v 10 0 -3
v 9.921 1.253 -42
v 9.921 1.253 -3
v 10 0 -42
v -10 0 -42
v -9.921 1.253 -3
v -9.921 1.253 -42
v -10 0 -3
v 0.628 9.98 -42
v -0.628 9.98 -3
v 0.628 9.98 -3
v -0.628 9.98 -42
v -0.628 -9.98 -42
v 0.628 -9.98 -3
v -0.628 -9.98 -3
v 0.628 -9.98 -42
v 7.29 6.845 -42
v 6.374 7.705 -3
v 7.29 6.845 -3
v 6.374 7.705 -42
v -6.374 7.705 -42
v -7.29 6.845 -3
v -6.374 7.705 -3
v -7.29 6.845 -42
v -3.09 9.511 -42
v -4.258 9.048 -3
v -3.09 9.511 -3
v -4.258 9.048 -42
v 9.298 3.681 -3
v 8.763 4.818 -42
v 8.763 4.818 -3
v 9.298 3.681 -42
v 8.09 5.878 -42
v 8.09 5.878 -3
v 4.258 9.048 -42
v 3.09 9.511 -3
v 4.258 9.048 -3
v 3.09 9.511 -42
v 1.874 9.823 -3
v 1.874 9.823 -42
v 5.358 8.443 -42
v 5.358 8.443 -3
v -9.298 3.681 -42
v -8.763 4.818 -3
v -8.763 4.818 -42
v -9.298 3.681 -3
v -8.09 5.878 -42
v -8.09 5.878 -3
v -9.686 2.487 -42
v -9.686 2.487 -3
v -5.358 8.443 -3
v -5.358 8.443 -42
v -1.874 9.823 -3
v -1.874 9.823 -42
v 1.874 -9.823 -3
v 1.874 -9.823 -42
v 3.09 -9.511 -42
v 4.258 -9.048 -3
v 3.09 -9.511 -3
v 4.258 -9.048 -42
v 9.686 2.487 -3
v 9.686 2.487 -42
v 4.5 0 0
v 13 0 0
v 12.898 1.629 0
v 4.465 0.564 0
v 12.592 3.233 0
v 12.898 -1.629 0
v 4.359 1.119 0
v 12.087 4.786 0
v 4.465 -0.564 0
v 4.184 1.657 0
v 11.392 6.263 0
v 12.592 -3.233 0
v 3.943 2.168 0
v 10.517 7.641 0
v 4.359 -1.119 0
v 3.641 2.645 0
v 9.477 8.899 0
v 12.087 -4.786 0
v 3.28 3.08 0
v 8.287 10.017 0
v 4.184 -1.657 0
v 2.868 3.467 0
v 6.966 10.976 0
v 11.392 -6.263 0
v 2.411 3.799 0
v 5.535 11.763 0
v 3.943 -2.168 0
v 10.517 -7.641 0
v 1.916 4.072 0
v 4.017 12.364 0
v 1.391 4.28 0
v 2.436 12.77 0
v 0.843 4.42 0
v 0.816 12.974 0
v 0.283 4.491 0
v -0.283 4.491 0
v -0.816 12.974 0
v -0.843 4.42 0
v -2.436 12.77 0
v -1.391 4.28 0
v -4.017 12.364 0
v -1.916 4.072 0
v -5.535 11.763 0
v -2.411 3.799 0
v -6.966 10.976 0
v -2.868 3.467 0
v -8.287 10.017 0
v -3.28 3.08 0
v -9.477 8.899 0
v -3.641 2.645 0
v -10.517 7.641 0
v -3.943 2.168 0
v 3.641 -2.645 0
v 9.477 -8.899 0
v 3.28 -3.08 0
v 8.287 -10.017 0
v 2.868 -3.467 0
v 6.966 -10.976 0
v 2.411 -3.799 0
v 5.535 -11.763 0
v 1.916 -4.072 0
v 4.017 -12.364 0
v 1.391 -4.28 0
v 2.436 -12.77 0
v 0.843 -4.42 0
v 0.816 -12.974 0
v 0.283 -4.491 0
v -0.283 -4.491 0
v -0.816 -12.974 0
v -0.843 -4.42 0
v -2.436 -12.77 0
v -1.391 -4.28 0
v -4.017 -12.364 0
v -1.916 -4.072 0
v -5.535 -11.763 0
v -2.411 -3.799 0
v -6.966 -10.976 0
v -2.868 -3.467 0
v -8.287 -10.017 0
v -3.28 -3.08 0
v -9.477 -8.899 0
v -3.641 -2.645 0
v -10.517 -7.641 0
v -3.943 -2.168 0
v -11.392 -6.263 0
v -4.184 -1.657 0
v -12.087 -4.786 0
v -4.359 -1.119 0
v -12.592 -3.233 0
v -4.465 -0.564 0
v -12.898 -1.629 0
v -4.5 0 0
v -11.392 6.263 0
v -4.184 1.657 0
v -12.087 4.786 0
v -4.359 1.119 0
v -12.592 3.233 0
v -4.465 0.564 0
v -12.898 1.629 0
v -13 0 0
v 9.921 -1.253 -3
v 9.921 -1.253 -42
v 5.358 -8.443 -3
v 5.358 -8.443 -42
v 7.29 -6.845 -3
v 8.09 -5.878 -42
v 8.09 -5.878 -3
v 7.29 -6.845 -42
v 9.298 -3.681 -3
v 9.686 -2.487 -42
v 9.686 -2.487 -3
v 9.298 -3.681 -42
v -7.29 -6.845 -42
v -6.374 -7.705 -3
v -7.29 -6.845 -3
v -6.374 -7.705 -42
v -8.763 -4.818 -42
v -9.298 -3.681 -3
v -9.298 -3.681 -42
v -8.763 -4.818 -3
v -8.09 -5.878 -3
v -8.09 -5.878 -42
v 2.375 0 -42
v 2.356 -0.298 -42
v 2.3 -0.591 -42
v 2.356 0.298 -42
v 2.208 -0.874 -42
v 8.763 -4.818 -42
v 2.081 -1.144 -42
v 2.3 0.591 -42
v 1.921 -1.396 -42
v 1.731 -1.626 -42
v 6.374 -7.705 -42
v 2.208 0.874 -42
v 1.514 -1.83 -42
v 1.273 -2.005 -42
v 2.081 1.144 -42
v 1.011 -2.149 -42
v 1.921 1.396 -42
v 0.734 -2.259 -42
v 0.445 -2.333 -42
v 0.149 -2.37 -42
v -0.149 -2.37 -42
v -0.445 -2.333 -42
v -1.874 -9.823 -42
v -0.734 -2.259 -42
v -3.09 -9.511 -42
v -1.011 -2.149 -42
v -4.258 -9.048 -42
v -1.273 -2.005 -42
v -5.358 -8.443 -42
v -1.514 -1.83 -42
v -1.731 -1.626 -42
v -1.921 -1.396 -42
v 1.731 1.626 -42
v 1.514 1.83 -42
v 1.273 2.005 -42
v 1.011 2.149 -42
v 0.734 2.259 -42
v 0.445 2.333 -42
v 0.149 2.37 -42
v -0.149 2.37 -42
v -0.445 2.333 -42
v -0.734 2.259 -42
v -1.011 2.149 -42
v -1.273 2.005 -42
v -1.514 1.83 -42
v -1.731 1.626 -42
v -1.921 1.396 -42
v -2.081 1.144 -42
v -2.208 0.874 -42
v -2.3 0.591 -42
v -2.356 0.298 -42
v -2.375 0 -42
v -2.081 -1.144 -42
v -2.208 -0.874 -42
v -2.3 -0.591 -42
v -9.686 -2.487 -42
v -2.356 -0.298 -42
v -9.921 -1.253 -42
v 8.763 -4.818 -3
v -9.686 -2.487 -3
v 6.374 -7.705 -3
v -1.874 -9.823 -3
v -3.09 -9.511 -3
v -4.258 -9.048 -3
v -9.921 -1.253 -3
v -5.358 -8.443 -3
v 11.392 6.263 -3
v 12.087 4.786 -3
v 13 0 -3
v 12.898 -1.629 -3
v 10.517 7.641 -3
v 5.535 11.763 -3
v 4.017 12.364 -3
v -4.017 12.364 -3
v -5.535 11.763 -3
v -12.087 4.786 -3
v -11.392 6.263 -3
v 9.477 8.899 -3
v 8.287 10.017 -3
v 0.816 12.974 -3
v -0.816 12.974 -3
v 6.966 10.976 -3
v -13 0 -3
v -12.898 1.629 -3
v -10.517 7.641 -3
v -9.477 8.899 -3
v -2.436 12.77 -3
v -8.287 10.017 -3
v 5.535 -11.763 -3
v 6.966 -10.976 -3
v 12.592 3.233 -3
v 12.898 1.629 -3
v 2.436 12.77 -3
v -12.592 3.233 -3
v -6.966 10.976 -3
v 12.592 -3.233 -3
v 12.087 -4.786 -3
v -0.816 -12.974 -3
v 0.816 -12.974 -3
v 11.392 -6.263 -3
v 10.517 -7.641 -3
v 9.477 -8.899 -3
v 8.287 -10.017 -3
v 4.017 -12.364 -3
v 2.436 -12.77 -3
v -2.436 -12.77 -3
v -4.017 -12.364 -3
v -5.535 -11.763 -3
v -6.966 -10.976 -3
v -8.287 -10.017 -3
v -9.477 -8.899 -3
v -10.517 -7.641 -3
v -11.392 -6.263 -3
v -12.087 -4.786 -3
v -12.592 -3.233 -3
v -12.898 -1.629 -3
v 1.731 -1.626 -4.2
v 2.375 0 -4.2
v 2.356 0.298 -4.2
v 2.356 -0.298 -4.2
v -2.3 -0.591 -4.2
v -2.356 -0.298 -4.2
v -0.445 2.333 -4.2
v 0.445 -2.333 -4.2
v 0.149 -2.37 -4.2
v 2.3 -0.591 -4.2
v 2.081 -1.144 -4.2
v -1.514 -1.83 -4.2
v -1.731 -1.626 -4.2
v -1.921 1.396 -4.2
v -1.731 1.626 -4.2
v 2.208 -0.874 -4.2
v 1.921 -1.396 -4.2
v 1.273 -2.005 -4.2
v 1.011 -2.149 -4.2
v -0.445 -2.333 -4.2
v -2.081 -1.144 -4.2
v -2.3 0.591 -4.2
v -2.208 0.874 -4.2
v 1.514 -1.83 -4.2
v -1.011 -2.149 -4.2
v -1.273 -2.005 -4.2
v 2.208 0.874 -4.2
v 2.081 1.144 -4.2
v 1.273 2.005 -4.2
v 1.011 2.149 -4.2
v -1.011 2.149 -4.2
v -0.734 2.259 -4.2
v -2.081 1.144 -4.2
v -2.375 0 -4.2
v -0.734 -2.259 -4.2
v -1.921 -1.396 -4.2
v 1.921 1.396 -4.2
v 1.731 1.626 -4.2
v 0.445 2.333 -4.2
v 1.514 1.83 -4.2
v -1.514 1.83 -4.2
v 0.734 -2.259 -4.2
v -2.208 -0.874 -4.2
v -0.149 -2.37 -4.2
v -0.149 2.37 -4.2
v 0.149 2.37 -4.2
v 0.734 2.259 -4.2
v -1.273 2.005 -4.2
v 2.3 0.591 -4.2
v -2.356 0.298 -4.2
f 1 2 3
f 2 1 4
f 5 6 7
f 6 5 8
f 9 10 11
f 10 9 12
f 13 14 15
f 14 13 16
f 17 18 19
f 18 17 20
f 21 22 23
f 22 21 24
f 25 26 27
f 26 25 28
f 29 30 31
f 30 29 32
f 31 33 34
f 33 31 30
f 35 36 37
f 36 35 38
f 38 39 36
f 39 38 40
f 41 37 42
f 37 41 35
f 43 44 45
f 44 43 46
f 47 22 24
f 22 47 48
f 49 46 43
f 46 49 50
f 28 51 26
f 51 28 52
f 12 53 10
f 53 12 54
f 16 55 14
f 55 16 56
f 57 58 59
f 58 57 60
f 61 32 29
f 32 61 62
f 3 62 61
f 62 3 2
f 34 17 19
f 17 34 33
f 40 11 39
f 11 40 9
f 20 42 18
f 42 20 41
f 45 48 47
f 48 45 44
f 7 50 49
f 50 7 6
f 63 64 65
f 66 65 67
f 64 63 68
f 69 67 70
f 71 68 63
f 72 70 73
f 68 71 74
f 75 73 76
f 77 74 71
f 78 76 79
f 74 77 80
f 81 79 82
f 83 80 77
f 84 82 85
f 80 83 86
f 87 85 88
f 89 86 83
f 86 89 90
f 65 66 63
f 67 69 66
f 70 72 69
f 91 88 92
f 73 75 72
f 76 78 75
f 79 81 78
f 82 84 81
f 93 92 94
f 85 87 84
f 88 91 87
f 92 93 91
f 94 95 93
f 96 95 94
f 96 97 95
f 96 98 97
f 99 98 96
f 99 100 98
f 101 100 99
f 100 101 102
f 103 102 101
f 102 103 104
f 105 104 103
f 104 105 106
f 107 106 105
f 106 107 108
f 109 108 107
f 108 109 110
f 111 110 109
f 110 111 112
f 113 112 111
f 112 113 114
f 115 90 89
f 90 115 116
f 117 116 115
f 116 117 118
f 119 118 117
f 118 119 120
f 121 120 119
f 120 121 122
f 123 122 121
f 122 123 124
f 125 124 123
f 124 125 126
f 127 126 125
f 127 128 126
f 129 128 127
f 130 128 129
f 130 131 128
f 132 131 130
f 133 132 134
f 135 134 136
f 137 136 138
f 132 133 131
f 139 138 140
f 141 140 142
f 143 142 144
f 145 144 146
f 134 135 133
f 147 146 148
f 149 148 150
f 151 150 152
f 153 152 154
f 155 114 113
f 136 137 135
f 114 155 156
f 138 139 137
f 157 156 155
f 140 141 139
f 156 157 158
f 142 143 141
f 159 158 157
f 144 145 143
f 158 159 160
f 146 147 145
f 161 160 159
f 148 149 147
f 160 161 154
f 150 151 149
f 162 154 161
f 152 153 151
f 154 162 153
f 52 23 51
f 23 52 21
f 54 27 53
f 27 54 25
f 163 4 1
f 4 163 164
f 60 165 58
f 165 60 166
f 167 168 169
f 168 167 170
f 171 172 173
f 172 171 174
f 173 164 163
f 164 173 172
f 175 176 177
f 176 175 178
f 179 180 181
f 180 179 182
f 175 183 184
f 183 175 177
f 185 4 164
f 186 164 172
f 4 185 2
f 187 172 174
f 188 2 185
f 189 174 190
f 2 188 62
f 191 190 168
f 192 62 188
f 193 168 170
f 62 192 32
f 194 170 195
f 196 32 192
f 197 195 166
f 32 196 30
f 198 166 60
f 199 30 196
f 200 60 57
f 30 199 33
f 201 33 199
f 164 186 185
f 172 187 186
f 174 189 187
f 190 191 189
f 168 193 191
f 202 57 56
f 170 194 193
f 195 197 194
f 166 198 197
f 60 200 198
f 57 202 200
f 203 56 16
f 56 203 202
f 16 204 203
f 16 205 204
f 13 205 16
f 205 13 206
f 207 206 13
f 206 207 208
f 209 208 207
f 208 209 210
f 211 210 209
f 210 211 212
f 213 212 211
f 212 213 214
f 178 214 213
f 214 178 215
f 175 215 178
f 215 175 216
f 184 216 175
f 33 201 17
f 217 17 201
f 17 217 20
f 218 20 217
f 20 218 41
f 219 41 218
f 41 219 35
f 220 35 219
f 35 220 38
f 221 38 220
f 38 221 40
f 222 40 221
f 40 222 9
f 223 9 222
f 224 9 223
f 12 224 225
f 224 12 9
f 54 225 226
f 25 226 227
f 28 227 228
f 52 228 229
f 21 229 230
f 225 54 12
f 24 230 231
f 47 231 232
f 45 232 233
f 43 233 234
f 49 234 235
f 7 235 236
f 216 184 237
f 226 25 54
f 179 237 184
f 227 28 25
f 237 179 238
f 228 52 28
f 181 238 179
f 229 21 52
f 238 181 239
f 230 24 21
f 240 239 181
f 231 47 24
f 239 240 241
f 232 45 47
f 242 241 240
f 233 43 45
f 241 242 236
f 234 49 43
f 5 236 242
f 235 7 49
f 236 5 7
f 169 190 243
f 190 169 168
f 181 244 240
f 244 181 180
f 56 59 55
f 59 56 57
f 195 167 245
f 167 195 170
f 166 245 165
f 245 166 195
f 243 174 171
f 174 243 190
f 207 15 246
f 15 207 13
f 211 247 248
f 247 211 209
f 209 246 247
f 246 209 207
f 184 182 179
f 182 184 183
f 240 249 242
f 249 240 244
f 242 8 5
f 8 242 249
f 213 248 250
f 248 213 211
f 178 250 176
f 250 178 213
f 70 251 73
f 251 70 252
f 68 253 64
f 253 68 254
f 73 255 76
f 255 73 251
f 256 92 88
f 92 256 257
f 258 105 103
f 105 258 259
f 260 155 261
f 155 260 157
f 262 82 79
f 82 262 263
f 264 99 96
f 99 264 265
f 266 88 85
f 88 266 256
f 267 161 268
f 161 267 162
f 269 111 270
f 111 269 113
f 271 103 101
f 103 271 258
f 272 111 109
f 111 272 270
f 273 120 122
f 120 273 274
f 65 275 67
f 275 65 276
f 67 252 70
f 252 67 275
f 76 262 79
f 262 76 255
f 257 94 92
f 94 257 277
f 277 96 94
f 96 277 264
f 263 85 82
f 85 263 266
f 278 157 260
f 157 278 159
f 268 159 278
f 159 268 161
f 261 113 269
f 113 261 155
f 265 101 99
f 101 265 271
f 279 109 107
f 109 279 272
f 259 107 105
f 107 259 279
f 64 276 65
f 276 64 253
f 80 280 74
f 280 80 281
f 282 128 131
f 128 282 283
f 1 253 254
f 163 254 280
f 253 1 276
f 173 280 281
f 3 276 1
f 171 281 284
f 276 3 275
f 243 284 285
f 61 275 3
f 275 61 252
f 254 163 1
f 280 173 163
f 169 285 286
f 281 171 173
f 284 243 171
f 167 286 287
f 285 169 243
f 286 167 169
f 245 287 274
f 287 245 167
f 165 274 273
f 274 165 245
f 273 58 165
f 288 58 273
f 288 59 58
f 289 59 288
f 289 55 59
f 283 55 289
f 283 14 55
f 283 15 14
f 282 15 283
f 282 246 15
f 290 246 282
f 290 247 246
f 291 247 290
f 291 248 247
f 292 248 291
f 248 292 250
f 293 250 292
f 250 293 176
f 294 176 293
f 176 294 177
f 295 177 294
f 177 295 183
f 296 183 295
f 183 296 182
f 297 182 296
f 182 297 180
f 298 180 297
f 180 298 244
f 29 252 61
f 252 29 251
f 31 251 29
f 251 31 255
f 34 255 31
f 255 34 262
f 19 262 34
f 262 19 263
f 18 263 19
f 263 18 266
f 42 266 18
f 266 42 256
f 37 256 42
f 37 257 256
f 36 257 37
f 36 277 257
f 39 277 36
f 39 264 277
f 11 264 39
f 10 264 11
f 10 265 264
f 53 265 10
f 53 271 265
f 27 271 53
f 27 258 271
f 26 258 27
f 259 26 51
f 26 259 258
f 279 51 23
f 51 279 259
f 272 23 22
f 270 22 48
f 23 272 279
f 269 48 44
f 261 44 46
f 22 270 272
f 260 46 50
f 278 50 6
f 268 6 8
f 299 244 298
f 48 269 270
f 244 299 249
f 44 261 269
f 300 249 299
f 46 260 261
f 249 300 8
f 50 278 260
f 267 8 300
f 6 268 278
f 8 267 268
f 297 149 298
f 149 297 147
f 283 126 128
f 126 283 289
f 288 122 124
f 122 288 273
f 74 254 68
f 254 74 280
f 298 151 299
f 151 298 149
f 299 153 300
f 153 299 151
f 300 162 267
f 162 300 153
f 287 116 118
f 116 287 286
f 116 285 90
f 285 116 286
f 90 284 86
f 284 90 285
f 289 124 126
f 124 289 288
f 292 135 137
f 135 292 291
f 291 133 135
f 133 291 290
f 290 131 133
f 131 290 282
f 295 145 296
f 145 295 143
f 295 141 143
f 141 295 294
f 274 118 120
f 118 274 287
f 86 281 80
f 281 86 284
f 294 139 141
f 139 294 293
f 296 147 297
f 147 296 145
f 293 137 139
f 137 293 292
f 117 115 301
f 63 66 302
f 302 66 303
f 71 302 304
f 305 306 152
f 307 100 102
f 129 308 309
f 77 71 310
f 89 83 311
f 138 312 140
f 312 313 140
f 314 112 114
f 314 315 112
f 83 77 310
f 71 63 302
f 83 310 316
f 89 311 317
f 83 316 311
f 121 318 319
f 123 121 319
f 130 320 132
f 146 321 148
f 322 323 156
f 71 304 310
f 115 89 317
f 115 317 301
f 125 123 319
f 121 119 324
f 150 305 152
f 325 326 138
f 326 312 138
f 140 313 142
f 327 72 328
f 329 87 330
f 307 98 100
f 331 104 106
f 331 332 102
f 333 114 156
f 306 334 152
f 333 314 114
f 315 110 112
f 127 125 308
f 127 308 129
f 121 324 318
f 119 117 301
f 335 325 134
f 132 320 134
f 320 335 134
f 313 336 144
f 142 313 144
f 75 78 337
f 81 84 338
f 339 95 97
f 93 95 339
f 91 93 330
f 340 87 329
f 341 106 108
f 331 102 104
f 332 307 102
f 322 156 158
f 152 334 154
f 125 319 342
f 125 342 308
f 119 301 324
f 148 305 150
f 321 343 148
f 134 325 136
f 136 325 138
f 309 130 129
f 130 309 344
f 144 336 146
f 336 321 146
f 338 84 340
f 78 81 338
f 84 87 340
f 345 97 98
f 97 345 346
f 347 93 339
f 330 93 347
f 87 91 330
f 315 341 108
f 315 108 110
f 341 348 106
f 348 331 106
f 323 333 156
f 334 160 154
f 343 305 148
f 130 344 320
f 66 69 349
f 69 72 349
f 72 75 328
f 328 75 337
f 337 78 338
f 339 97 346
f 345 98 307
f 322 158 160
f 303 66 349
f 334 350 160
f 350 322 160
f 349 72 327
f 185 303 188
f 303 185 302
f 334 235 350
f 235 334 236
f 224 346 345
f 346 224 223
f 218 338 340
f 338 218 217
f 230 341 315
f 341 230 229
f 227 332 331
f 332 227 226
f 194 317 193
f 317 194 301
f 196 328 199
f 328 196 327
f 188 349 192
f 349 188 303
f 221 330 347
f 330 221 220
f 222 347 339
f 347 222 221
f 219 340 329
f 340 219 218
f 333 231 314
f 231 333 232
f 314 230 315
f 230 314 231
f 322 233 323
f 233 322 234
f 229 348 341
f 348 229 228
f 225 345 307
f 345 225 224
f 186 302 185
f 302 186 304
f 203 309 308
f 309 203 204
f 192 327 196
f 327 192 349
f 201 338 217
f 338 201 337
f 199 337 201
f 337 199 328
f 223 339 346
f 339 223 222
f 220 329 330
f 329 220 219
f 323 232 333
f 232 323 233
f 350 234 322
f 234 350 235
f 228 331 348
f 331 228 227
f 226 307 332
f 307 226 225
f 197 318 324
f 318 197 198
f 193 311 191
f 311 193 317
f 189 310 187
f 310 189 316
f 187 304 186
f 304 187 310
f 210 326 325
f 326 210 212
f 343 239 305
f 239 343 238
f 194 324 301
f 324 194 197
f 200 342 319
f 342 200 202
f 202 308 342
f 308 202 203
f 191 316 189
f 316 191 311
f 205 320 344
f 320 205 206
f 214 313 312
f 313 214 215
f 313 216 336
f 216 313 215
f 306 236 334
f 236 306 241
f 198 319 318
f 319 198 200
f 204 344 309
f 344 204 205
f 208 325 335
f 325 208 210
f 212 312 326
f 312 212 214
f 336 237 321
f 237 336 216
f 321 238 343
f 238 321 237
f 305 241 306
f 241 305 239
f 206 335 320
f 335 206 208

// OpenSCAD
$fn = 50;


difference() {
	union() {
		translate(v = [0, 0, -42.0000000000]) {
			cylinder(h = 42, r = 10.0000000000);
		}
		translate(v = [0, 0, -3.0000000000]) {
			cylinder(h = 3, r = 13.0000000000);
		}
	}
	union() {
		translate(v = [0, 0, 0]) {
			rotate(a = [0, 0, 0]) {
				difference() {
					union() {
						#translate(v = [0, 0, -42.0000000000]) {
							cylinder(h = 42, r = 2.2500000000);
						}
						#translate(v = [0, 0, -4.2000000000]) {
							cylinder(h = 4.2000000000, r = 10.0000000000, r1 = 2.3750000000, r2 = 4.5000000000);
						}
						#translate(v = [0, 0, -42.0000000000]) {
							cylinder(h = 42, r = 2.3750000000);
						}
						#translate(v = [0, 0, -42.0000000000]) {
							cylinder(h = 42, r = 2.2500000000);
						}
					}
					union();
				}
			}
		}
	}
}
